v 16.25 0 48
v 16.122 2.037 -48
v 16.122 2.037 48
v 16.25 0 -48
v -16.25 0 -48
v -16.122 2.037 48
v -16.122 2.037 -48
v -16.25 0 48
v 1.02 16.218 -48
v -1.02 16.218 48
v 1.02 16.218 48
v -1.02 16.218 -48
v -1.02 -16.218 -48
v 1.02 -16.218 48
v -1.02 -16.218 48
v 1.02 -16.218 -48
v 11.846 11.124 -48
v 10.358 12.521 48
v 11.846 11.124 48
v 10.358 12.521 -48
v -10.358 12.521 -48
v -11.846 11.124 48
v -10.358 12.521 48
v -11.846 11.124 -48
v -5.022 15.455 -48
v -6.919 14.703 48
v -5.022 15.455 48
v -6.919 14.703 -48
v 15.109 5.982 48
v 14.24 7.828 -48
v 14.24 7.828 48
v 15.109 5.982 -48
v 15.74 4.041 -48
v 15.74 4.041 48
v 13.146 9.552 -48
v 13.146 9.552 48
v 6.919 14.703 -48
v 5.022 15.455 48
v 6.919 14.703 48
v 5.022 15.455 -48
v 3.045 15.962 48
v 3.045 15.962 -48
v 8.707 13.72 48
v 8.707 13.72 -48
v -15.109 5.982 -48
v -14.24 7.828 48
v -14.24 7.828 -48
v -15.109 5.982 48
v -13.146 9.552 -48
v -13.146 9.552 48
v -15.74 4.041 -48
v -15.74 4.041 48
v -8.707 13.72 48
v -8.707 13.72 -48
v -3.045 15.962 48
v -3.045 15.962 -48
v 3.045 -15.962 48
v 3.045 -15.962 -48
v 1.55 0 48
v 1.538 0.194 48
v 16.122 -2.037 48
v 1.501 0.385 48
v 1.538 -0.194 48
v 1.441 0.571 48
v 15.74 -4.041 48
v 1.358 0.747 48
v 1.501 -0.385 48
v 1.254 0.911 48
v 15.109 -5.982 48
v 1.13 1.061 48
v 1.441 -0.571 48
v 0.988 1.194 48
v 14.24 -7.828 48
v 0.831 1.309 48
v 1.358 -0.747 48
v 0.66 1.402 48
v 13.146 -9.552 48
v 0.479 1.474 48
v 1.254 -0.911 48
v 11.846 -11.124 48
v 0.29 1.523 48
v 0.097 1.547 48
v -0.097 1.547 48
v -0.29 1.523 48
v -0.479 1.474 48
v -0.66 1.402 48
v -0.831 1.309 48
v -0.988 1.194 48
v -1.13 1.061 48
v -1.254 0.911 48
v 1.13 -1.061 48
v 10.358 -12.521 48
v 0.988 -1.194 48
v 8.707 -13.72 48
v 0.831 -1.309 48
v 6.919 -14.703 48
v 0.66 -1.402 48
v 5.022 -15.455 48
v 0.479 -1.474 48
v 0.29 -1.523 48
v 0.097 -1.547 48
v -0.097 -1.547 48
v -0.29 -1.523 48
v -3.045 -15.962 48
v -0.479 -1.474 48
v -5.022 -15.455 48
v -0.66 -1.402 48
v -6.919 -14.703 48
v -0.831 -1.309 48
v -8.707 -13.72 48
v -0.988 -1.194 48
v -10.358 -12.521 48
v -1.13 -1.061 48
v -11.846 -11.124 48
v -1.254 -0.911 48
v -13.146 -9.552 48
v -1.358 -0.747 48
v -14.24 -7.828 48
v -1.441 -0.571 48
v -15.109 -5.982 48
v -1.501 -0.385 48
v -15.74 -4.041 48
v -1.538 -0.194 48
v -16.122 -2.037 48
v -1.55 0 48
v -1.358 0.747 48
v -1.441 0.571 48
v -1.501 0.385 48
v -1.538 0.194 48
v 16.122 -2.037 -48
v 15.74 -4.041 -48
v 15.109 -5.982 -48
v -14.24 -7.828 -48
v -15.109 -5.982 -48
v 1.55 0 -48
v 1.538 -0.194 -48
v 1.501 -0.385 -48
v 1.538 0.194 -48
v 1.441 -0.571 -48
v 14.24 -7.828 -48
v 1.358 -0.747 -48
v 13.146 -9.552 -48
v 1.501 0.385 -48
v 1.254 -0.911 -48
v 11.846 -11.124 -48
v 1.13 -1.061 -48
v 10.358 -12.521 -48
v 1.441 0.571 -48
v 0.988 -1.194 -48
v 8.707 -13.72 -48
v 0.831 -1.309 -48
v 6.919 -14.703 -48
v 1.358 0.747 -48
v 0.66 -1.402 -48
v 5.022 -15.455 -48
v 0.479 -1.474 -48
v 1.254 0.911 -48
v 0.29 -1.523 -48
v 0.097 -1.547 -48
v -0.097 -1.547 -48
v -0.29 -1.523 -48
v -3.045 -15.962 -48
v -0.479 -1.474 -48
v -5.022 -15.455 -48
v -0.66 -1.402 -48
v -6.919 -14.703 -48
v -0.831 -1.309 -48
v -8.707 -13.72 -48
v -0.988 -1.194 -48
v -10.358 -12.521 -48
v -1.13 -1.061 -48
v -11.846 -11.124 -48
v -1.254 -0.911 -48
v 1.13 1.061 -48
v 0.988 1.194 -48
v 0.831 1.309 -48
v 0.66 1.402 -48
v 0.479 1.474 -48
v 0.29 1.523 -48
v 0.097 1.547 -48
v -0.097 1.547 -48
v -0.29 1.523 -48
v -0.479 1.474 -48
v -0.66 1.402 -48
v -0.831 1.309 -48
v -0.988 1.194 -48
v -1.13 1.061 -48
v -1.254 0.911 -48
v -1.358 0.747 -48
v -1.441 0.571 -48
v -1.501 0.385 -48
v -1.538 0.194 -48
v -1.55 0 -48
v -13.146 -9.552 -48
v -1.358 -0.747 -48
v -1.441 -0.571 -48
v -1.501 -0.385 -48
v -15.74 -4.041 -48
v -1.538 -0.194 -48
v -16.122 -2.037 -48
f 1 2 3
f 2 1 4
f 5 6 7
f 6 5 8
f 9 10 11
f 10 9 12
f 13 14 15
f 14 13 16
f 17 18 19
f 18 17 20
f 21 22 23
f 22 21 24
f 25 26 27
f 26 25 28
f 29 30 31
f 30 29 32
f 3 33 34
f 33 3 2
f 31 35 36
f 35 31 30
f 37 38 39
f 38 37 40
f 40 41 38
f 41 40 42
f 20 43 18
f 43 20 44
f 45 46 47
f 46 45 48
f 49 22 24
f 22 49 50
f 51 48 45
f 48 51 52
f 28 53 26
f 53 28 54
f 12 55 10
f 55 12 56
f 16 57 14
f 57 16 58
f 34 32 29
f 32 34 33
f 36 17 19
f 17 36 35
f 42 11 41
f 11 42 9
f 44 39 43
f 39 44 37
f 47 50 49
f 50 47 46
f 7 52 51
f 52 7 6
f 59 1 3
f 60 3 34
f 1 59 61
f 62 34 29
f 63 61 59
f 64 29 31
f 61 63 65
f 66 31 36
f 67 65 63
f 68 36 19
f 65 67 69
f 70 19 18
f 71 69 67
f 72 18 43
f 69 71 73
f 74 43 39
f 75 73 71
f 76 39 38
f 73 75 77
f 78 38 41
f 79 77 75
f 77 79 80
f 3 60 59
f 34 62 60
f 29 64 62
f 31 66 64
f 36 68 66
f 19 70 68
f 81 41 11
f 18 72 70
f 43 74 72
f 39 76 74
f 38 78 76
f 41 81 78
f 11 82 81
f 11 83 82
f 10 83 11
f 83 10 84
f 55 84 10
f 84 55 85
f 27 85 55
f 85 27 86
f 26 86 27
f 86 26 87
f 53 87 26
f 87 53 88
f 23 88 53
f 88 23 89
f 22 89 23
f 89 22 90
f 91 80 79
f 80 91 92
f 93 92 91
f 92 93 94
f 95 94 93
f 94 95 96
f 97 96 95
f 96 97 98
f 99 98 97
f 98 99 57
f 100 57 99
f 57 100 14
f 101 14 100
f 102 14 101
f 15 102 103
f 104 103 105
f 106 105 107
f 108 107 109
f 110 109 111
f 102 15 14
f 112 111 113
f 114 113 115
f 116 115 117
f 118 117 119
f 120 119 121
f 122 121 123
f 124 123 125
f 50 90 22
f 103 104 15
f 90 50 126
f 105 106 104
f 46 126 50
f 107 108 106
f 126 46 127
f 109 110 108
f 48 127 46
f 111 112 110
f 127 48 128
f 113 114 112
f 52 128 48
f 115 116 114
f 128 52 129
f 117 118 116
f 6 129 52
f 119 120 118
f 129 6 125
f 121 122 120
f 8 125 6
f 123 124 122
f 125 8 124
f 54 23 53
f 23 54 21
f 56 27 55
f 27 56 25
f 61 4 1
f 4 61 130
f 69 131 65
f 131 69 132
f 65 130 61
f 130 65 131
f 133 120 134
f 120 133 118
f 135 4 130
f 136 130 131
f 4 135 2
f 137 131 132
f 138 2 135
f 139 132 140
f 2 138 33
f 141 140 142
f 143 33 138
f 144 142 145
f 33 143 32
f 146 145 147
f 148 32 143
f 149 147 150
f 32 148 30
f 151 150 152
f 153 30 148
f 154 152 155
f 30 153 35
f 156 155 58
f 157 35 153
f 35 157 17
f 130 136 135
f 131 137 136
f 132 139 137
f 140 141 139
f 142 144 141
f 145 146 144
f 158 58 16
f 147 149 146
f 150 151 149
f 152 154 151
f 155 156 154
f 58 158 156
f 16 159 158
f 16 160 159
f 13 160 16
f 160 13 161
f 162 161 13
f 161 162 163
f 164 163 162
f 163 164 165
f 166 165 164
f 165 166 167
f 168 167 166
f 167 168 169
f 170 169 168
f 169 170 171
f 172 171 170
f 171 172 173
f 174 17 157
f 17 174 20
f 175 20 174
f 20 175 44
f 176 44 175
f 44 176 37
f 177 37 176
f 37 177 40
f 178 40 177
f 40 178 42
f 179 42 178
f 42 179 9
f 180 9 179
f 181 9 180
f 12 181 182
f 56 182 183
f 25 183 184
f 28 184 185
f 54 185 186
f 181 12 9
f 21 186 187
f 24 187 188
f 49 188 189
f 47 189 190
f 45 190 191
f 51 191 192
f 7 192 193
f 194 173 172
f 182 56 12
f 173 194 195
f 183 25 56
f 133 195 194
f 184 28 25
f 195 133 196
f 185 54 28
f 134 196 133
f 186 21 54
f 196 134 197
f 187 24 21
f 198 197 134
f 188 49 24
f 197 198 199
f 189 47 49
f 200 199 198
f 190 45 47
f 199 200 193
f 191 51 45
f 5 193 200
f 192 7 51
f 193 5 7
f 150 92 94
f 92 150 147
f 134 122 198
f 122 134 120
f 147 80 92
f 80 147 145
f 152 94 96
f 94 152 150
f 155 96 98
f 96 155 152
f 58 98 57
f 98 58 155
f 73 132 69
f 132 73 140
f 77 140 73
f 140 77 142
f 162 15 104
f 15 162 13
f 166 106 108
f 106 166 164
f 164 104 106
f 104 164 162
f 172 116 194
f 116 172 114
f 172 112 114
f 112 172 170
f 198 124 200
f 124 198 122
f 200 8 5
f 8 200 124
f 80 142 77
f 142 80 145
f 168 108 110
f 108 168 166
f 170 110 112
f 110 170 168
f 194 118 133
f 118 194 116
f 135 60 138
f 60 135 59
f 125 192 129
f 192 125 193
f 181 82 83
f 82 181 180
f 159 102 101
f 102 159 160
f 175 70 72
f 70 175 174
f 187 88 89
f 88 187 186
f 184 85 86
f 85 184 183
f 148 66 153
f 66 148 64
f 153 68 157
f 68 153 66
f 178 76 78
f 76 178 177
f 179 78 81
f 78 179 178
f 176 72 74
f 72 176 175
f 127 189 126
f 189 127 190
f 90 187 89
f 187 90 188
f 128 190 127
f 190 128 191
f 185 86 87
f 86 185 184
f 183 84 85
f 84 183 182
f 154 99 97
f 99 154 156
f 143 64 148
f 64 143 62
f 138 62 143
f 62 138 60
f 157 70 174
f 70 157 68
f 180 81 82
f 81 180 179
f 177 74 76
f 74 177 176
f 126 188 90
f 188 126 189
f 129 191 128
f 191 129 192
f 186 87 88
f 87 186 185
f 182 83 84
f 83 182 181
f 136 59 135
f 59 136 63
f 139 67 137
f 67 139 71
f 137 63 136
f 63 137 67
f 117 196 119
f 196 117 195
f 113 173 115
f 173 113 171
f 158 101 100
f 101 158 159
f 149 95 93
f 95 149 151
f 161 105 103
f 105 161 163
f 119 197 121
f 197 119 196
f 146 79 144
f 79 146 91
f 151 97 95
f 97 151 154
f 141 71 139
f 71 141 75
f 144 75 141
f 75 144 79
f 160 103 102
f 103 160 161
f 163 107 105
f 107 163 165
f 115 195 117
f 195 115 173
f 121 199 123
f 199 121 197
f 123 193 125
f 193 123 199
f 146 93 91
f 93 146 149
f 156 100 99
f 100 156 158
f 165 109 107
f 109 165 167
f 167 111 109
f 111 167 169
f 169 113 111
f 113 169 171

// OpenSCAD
$fn = 50;


difference() {
	union() {
		translate(v = [0, 0, -48.0000000000]) {
			cylinder(h = 96, r = 16.2500000000);
		}
	}
	union() {
		translate(v = [0, 0, -100.0000000000]) {
			cylinder(h = 200, r = 1.5500000000);
		}
	}
}
